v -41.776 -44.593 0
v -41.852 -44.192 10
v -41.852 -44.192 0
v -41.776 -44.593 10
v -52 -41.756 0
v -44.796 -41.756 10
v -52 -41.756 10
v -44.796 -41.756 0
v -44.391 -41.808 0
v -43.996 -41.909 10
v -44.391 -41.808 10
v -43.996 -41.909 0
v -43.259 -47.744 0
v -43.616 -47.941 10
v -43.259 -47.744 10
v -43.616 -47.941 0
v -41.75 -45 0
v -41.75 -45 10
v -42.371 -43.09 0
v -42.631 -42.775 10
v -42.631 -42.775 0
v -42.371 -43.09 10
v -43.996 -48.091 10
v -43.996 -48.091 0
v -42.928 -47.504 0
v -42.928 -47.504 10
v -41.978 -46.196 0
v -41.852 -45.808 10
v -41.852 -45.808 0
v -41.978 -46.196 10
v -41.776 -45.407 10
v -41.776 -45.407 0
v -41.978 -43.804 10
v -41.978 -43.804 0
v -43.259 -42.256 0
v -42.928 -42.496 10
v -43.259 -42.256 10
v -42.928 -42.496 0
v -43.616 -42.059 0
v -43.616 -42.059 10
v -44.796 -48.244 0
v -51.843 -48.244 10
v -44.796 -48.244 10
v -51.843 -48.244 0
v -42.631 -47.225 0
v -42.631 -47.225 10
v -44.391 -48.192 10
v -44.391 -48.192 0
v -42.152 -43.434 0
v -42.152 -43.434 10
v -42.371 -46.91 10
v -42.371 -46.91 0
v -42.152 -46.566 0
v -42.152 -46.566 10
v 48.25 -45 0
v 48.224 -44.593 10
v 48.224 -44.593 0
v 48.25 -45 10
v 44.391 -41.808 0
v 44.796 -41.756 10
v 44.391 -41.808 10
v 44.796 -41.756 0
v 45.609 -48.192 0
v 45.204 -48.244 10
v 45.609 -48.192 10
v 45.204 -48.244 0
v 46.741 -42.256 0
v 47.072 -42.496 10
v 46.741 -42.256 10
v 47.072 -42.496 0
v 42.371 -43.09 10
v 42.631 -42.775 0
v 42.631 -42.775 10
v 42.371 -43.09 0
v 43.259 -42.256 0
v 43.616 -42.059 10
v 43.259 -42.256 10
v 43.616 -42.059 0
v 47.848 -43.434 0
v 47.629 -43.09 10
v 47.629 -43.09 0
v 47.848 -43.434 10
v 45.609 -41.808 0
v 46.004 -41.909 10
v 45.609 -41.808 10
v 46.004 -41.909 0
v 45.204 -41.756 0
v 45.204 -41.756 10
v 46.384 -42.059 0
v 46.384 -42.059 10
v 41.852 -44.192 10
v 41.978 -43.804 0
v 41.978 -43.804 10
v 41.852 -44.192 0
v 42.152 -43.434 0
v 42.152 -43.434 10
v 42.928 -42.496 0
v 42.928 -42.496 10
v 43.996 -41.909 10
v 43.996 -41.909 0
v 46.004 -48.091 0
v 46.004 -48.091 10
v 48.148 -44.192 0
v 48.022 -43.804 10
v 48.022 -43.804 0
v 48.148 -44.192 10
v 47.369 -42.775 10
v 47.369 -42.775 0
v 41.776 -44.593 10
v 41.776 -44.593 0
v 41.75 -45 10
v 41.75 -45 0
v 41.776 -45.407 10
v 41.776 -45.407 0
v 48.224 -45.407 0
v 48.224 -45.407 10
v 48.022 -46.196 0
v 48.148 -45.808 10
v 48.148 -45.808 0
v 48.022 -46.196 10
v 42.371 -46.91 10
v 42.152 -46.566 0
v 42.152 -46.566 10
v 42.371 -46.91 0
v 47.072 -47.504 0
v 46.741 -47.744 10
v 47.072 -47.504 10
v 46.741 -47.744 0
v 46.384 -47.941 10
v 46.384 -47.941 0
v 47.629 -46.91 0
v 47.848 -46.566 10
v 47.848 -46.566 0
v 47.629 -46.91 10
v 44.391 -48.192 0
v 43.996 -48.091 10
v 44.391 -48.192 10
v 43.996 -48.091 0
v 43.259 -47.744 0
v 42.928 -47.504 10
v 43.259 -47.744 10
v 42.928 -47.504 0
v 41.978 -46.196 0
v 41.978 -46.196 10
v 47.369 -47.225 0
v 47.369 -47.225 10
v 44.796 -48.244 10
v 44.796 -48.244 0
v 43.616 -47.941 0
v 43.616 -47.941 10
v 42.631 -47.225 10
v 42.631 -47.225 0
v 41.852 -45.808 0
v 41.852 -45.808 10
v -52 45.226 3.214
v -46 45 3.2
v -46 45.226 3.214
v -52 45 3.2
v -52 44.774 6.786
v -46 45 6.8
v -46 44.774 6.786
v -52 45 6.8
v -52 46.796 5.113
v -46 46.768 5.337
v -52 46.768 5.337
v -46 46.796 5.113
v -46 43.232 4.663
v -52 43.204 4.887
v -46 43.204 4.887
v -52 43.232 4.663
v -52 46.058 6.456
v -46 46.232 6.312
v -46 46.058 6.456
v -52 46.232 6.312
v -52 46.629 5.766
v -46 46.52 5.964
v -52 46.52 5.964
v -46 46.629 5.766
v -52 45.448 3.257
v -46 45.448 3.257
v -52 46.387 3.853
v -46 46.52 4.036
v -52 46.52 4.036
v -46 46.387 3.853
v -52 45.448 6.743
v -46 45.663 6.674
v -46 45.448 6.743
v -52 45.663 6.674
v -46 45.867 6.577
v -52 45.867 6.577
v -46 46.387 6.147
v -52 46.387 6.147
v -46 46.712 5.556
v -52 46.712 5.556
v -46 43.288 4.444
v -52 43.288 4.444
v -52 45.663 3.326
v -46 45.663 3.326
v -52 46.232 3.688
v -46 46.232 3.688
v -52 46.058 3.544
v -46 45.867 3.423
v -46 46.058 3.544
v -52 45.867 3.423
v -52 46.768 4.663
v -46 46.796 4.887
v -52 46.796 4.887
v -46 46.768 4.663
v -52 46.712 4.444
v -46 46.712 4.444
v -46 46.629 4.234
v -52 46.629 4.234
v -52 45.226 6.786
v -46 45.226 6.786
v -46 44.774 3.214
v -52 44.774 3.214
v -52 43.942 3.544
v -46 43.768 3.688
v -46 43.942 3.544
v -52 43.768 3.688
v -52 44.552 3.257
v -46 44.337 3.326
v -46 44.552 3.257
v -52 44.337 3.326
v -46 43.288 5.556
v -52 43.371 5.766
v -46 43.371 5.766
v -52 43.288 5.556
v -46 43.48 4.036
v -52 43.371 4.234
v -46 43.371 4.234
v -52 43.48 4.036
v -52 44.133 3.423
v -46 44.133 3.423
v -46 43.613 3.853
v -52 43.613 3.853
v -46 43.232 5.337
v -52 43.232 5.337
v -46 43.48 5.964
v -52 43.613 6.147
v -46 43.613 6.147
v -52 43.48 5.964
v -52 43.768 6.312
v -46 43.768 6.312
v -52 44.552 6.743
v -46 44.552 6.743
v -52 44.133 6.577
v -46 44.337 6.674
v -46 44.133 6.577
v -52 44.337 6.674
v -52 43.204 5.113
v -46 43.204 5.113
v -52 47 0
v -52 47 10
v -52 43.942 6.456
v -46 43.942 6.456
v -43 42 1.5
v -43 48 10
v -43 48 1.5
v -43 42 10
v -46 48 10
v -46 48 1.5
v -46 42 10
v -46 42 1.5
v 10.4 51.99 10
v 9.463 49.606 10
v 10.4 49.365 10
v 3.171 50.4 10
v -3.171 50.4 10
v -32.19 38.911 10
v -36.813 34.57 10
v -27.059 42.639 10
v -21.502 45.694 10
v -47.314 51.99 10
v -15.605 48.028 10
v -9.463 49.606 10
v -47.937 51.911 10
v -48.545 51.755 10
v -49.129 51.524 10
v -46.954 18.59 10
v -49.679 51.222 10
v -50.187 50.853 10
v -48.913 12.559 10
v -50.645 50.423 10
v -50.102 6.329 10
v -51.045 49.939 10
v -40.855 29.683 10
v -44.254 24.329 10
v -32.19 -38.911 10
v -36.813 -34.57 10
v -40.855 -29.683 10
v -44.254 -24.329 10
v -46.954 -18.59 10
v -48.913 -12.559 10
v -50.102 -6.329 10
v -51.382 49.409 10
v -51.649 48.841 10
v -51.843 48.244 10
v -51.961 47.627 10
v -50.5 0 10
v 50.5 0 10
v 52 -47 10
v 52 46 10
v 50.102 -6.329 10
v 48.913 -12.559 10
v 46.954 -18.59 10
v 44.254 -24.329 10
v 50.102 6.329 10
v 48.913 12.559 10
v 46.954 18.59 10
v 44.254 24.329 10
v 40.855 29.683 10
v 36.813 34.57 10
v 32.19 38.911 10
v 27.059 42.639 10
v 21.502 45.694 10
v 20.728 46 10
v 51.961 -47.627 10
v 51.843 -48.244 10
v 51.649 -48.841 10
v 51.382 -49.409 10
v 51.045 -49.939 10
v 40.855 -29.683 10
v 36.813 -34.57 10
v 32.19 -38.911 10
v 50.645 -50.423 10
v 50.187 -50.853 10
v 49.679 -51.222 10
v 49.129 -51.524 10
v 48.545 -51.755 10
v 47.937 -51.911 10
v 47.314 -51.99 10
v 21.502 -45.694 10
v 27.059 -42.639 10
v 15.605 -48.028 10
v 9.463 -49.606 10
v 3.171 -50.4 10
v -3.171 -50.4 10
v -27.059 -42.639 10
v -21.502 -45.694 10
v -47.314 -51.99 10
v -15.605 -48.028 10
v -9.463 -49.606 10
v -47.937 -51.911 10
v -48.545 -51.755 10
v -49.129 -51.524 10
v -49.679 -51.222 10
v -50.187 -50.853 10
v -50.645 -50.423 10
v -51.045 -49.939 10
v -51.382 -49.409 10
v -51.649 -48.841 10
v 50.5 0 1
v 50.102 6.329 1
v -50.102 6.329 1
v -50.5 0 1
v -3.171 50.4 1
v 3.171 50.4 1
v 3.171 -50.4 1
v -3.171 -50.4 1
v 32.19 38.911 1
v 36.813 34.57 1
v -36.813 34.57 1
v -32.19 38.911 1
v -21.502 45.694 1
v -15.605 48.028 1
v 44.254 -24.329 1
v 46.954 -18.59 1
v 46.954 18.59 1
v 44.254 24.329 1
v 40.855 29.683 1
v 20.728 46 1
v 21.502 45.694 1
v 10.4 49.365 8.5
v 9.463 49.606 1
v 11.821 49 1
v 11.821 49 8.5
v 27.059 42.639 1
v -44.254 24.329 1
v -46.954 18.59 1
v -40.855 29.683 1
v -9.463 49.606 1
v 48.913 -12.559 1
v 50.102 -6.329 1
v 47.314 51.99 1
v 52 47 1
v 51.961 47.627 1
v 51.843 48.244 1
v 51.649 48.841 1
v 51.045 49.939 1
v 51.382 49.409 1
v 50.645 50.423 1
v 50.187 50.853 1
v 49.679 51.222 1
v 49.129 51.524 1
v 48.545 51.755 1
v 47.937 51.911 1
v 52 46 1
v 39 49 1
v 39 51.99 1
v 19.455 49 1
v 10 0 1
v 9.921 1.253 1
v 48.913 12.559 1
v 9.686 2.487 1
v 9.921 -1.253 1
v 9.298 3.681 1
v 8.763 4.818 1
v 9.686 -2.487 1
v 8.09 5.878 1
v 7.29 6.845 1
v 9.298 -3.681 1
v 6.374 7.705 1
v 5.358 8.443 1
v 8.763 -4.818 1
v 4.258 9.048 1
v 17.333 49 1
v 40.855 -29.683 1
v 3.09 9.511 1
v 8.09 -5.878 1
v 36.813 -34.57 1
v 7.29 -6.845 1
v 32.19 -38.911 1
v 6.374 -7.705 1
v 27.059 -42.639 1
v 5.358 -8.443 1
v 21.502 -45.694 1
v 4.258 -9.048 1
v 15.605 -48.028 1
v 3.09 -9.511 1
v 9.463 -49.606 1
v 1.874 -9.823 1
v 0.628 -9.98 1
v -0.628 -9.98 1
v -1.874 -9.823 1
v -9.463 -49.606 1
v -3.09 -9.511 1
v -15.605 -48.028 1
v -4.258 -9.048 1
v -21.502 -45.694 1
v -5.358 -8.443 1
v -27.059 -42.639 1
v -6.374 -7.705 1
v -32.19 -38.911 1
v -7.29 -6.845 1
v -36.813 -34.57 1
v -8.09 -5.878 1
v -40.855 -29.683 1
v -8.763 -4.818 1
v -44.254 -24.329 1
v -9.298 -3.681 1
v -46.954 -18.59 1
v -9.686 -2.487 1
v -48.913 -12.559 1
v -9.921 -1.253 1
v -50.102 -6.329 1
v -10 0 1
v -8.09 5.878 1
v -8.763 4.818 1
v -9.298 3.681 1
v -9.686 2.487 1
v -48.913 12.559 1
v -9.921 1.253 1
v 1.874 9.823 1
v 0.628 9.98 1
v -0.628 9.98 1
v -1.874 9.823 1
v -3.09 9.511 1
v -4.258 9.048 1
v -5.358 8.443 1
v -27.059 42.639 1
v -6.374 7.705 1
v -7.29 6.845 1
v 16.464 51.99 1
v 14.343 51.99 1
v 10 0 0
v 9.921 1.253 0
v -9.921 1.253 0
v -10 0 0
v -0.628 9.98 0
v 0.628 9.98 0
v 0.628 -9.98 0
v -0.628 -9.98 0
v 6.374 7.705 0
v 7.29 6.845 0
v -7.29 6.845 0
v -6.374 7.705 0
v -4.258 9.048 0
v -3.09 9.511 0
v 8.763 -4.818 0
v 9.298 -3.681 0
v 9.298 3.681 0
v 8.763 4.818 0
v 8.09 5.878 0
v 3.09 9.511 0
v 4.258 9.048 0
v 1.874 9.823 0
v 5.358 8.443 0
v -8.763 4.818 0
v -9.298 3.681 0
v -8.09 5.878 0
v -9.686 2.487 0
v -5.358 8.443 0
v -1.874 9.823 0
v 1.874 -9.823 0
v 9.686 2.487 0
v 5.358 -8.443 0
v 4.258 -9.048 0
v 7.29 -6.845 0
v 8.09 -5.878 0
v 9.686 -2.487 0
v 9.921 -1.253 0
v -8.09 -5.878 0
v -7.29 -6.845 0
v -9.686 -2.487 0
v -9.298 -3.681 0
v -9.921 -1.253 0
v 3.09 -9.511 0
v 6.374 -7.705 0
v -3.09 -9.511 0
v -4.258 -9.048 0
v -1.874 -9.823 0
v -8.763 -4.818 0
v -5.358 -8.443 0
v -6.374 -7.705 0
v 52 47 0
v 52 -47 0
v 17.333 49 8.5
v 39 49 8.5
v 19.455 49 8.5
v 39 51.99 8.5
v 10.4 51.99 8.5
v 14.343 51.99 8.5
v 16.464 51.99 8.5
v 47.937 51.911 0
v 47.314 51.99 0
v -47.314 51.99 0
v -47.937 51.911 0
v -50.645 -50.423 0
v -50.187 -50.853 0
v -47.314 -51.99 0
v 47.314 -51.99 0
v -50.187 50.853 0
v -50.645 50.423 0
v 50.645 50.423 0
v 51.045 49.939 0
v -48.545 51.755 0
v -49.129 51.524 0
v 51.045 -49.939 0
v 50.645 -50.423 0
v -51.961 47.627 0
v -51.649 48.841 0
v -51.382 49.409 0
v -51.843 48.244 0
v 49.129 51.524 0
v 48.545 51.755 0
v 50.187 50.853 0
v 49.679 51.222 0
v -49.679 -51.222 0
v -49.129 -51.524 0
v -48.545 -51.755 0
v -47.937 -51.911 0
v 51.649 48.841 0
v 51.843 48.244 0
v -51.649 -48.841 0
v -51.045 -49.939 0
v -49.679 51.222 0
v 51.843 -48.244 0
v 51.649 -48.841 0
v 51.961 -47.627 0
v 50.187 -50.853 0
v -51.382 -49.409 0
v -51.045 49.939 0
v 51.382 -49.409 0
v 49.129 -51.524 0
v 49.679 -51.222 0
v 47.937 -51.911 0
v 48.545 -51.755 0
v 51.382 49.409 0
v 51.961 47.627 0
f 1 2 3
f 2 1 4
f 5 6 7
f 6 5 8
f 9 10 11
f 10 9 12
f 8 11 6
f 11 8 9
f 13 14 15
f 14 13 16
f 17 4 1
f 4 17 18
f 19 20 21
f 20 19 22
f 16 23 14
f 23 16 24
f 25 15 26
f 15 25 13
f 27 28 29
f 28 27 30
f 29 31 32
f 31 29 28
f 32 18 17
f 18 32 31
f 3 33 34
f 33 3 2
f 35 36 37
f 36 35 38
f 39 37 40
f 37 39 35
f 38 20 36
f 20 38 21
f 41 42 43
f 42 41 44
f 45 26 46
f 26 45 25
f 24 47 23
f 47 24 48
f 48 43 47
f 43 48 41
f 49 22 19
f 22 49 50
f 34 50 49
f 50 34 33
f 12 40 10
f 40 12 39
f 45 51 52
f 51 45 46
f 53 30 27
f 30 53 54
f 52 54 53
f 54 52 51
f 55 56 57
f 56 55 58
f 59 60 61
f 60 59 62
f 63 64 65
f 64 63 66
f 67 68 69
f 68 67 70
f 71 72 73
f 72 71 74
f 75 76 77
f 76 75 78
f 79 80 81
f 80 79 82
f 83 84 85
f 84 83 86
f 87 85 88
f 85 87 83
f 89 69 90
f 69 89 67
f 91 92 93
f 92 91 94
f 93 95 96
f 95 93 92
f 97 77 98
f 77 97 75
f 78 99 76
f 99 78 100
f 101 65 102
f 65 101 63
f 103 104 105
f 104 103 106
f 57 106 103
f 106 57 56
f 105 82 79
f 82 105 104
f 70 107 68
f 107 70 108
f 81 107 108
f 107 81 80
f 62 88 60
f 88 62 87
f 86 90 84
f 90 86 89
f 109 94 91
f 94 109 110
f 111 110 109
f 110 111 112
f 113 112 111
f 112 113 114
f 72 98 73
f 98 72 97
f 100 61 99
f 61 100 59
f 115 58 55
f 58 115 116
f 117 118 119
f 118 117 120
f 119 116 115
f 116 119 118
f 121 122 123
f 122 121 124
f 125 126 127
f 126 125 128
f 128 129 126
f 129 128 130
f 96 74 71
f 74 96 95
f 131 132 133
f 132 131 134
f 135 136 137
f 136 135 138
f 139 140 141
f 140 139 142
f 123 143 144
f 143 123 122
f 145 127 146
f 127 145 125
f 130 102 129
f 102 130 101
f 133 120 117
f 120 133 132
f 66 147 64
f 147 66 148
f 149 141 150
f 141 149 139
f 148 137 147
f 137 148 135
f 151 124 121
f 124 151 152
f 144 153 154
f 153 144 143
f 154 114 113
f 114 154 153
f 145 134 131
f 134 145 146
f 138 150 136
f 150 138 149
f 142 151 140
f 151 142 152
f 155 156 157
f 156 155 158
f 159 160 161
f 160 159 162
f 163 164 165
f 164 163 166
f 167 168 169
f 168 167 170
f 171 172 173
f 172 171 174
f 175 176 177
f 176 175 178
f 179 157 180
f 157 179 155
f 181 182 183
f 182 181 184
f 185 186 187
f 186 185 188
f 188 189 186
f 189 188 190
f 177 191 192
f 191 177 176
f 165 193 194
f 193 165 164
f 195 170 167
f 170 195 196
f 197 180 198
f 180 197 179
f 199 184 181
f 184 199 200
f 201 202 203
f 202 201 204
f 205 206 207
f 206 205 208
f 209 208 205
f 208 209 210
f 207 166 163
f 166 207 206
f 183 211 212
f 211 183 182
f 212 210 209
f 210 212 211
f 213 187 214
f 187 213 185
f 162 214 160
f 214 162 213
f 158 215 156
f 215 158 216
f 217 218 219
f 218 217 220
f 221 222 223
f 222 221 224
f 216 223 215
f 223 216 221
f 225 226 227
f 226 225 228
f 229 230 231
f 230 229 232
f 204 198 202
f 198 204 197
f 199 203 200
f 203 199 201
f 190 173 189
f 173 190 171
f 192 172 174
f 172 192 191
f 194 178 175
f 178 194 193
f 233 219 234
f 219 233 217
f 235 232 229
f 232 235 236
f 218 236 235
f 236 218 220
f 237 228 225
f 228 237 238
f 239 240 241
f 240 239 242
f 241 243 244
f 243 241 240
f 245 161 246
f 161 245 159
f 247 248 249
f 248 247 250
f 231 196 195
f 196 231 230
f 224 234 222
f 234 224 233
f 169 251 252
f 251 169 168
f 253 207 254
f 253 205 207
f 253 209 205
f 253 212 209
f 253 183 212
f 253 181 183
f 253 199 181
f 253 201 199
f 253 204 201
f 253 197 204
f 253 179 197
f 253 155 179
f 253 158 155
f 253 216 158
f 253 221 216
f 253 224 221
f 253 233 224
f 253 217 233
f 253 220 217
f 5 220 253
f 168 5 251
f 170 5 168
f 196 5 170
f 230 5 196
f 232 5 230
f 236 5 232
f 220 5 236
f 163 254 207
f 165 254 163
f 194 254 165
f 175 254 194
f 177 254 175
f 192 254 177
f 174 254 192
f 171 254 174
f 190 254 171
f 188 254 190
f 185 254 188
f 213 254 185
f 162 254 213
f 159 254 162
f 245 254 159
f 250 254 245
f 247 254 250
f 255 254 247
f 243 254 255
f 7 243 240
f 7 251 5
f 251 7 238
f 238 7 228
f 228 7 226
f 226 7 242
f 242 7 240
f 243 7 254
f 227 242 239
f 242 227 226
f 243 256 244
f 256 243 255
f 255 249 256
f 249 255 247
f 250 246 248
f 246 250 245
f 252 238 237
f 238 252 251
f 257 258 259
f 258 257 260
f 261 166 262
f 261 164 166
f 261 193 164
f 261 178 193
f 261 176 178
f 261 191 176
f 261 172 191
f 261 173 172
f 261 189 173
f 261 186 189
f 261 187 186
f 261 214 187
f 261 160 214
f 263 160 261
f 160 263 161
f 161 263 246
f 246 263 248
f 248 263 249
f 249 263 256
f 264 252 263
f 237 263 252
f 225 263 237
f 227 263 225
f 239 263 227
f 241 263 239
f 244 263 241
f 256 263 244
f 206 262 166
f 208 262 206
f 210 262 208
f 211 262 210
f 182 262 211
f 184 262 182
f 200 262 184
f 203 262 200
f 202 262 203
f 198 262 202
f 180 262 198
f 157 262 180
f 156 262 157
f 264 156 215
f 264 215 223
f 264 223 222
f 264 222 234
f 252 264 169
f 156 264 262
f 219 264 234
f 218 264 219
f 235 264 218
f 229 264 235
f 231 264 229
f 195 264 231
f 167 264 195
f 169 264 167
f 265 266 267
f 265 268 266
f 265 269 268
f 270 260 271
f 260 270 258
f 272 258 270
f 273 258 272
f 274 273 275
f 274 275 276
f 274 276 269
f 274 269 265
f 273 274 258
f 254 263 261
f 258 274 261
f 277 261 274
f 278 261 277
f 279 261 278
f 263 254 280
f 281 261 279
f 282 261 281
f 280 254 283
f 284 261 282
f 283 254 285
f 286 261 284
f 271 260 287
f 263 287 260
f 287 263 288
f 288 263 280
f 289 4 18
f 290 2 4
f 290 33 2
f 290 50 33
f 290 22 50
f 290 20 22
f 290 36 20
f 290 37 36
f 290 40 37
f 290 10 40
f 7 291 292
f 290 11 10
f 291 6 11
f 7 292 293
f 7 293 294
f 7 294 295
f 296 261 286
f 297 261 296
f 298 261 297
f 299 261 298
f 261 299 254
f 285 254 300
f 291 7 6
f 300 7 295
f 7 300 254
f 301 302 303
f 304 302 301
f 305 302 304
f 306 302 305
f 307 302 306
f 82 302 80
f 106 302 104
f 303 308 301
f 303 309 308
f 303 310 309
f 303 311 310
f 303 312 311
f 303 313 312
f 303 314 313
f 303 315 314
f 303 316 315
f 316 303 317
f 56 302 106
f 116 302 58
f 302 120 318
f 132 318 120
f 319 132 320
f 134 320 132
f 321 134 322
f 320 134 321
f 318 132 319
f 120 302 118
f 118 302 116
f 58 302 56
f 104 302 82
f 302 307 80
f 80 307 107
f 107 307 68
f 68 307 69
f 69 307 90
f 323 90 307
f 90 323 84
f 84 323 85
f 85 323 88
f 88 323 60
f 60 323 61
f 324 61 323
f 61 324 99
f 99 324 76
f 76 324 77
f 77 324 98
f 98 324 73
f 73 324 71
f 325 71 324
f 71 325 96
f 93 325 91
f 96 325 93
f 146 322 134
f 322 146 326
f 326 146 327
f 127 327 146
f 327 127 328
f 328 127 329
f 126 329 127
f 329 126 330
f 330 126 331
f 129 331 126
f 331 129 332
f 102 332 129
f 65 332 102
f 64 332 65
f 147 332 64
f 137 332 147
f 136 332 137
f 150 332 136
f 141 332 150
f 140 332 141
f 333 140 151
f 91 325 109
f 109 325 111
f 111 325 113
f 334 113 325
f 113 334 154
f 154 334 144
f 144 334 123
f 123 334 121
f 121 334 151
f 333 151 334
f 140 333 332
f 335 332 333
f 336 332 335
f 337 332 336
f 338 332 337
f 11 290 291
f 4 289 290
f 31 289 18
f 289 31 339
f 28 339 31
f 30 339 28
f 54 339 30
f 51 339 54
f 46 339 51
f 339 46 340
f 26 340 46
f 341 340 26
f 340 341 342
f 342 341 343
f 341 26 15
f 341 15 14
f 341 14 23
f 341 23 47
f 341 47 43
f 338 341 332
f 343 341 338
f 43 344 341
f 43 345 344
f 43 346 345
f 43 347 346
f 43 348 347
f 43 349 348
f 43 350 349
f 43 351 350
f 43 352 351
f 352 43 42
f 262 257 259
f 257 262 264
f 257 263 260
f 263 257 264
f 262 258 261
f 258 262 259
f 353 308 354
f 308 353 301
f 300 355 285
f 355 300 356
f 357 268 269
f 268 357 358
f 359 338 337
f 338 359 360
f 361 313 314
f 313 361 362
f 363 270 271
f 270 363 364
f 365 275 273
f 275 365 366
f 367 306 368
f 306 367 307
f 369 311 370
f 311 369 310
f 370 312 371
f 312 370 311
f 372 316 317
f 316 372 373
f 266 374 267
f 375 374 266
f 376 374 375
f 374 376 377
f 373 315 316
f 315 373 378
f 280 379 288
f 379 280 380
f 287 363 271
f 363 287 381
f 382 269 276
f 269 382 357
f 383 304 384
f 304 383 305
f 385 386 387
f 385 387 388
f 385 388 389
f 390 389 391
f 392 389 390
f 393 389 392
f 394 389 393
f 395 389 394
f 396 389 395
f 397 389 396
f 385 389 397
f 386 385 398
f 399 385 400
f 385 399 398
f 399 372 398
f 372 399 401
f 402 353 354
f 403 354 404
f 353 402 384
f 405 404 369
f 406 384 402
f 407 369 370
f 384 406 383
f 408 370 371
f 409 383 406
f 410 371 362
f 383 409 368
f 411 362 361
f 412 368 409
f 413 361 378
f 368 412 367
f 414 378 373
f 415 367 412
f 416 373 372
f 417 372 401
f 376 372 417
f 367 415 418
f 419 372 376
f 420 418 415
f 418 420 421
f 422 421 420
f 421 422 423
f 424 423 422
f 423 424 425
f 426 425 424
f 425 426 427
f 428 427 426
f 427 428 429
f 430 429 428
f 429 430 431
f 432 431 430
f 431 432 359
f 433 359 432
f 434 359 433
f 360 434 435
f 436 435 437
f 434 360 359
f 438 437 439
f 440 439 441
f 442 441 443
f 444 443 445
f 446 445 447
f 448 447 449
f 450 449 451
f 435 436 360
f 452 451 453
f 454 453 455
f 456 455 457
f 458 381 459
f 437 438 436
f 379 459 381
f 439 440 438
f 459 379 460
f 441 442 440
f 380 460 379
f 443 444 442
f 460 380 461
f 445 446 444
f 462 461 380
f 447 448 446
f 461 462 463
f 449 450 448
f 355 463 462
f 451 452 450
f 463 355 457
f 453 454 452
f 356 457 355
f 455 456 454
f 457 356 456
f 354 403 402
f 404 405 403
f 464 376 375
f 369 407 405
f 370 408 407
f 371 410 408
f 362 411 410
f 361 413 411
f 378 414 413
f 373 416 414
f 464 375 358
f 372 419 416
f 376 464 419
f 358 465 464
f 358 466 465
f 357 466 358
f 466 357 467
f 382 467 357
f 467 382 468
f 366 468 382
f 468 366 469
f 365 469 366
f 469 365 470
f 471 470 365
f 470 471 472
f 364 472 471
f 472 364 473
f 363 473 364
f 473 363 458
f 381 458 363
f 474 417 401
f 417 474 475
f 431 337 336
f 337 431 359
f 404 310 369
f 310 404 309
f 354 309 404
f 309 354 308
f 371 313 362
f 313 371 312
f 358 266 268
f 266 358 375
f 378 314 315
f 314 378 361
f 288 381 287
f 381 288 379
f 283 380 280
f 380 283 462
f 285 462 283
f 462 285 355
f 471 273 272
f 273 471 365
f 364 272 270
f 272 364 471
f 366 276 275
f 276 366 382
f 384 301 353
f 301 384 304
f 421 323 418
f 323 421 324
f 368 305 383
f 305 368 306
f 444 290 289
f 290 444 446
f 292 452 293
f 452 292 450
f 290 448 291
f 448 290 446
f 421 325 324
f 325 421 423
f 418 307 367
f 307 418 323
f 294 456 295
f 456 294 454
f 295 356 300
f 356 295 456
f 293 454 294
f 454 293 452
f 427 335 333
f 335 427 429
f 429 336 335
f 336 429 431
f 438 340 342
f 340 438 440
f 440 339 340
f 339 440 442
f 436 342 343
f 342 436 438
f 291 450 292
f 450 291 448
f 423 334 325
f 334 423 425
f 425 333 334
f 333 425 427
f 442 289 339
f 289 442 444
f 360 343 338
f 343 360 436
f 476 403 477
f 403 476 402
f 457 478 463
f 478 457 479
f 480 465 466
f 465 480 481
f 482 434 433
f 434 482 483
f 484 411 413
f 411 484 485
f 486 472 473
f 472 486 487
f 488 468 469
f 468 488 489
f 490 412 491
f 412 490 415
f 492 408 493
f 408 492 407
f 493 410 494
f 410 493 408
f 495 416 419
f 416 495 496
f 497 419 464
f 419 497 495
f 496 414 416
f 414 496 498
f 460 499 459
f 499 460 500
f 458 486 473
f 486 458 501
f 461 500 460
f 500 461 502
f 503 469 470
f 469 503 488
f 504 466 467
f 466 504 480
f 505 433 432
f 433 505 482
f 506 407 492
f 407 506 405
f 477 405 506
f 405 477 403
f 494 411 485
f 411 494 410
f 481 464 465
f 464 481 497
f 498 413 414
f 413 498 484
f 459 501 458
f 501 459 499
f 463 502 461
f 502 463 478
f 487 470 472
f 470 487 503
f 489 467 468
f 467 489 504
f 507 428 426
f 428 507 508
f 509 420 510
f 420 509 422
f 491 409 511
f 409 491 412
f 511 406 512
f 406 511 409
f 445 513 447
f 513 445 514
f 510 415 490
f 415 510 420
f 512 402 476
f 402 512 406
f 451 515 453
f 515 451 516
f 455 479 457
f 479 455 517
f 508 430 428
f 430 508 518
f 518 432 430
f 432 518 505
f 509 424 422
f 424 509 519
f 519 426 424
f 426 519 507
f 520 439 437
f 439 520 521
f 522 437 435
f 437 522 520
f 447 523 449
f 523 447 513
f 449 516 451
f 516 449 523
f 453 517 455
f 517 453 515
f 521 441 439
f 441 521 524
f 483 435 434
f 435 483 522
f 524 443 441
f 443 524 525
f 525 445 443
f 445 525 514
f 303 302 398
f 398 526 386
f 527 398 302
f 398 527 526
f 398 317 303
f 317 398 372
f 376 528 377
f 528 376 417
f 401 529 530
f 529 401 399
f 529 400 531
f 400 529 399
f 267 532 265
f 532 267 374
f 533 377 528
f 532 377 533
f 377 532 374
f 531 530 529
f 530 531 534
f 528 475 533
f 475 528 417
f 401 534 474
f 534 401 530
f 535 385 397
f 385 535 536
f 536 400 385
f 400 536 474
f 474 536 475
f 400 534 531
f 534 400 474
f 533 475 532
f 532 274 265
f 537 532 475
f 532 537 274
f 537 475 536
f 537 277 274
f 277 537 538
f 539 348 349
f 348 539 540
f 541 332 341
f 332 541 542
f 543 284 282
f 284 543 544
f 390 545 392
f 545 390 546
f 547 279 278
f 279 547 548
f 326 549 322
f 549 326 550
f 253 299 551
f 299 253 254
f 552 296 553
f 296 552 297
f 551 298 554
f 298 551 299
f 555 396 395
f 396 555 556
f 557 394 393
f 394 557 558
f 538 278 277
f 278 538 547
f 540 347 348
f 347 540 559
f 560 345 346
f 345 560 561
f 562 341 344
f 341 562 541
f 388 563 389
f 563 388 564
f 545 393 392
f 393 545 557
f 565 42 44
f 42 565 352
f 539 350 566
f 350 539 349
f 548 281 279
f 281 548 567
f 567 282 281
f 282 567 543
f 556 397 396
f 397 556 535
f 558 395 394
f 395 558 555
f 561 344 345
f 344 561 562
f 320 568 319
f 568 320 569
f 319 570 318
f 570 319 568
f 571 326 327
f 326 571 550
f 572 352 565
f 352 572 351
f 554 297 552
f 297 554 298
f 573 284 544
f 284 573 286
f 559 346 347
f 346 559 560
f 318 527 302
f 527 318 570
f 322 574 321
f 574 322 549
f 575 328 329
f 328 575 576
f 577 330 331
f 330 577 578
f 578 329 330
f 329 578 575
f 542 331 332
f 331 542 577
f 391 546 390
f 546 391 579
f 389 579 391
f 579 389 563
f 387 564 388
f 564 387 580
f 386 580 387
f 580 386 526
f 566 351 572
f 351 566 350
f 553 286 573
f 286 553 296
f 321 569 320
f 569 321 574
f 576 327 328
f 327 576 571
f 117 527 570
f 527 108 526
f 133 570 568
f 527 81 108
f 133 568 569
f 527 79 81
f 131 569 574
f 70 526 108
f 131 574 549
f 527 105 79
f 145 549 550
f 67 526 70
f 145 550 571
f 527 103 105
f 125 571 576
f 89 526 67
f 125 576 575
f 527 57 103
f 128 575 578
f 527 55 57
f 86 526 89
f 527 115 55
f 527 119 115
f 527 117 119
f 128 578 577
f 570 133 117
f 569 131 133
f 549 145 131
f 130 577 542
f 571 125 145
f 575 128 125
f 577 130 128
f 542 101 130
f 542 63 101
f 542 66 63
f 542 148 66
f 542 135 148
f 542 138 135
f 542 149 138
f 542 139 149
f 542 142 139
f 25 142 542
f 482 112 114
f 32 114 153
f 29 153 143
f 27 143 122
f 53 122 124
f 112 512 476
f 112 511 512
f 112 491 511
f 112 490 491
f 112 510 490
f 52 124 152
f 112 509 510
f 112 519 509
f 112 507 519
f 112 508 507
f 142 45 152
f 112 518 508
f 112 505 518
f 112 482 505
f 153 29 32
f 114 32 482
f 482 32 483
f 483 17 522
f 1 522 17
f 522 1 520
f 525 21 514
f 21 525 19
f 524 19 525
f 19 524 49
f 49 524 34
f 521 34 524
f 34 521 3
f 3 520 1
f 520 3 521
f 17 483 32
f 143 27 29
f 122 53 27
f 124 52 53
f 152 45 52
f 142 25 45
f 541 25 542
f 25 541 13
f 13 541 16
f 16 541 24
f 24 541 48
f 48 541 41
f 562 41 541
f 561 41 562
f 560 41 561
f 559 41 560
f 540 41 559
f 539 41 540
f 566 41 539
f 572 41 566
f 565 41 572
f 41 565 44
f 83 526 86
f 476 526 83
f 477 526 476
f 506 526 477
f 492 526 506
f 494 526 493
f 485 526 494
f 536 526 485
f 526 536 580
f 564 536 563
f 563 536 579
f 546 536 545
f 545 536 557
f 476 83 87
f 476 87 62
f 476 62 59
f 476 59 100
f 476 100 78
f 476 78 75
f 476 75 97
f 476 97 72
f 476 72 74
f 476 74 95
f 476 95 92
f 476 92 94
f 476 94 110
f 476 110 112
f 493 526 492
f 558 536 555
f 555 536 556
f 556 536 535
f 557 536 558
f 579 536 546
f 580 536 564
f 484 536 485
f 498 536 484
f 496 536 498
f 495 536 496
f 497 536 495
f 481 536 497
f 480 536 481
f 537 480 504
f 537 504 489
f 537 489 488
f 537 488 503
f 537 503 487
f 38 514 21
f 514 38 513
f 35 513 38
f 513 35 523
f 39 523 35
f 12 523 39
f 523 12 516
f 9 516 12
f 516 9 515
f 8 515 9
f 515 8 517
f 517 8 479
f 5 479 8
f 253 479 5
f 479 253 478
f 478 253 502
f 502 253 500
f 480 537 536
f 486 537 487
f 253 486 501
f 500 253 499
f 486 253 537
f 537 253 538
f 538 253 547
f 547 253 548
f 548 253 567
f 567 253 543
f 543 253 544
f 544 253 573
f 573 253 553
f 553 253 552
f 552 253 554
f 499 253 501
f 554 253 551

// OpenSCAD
$fn = 50;


difference() {
	union() {
		translate(v = [0, 0, 0]) {
			rotate(a = [0, 0, 0]) {
				hull() {
					translate(v = [-47.0000000000, 47.0000000000, 0]) {
						rotate(a = [0, 0, 0]) {
							translate(v = [0, 0, 0]) {
								rotate(a = [0, 0, 0]) {
									cylinder(h = 10, r = 5);
								}
							}
						}
					}
					translate(v = [47.0000000000, 47.0000000000, 0]) {
						rotate(a = [0, 0, 0]) {
							translate(v = [0, 0, 0]) {
								rotate(a = [0, 0, 0]) {
									cylinder(h = 10, r = 5);
								}
							}
						}
					}
					translate(v = [-47.0000000000, -47.0000000000, 0]) {
						rotate(a = [0, 0, 0]) {
							translate(v = [0, 0, 0]) {
								rotate(a = [0, 0, 0]) {
									cylinder(h = 10, r = 5);
								}
							}
						}
					}
					translate(v = [47.0000000000, -47.0000000000, 0]) {
						rotate(a = [0, 0, 0]) {
							translate(v = [0, 0, 0]) {
								rotate(a = [0, 0, 0]) {
									cylinder(h = 10, r = 5);
								}
							}
						}
					}
				}
			}
		}
	}
	union() {
		translate(v = [-52.5000000000, -45.0000000000, -125]) {
			rotate(a = [0, 0, 0]) {
				hull() {
					translate(v = [7.5000000000, 0, 0]) {
						rotate(a = [0, 0, 0]) {
							translate(v = [0, 0, 0]) {
								rotate(a = [0, 0, 0]) {
									cylinder(h = 250, r = 3.2500000000);
								}
							}
						}
					}
					translate(v = [-7.5000000000, 0, 0]) {
						rotate(a = [0, 0, 0]) {
							translate(v = [0, 0, 0]) {
								rotate(a = [0, 0, 0]) {
									cylinder(h = 250, r = 3.2500000000);
								}
							}
						}
					}
				}
			}
		}
		translate(v = [45.0000000000, -45.0000000000, -125.0000000000]) {
			rotate(a = [0, 0, 0]) {
				cylinder(h = 250, r = 3.2500000000);
			}
		}
		translate(v = [-52.0000000000, 45.0000000000, 5.0000000000]) {
			rotate(a = [0, 90, 0]) {
				cylinder(h = 9, r = 1.8000000000);
			}
		}
		translate(v = [-46.0000000000, 42.0000000000, 1.5000000000]) {
			rotate(a = [0, 0, 0]) {
				cube(size = [3, 6, 8.5000000000]);
			}
		}
		translate(v = [0, 0, 1.0000000000]) {
			rotate(a = [0, 0, 0]) {
				cylinder(h = 12, r = 50.5000000000);
			}
		}
		translate(v = [0, 0, -5.0000000000]) {
			rotate(a = [0, 0, 0]) {
				cylinder(h = 10, r = 10.0000000000);
			}
		}
		translate(v = [0.0000000000, 46.0000000000, 1]) {
			rotate(a = [0, 0, 0]) {
				cube(size = [52.0000000000, 3, 12]);
			}
		}
		translate(v = [39.0000000000, 46.0000000000, 1]) {
			rotate(a = [0, 0, 0]) {
				cube(size = [13.0000000000, 6, 12]);
			}
		}
		translate(v = [10.4000000000, 46.0000000000, 8.5000000000]) {
			rotate(a = [0, 0, 0]) {
				cube(size = [41.6000000000, 6, 1.5000000000]);
			}
		}
		translate(v = [13.5833333333, 52.7500000000, 1]) {
			rotate(a = [0, 0, -45]) {
				cube(size = [7.5000000000, 1.5000000000, 12]);
			}
		}
	}
}
